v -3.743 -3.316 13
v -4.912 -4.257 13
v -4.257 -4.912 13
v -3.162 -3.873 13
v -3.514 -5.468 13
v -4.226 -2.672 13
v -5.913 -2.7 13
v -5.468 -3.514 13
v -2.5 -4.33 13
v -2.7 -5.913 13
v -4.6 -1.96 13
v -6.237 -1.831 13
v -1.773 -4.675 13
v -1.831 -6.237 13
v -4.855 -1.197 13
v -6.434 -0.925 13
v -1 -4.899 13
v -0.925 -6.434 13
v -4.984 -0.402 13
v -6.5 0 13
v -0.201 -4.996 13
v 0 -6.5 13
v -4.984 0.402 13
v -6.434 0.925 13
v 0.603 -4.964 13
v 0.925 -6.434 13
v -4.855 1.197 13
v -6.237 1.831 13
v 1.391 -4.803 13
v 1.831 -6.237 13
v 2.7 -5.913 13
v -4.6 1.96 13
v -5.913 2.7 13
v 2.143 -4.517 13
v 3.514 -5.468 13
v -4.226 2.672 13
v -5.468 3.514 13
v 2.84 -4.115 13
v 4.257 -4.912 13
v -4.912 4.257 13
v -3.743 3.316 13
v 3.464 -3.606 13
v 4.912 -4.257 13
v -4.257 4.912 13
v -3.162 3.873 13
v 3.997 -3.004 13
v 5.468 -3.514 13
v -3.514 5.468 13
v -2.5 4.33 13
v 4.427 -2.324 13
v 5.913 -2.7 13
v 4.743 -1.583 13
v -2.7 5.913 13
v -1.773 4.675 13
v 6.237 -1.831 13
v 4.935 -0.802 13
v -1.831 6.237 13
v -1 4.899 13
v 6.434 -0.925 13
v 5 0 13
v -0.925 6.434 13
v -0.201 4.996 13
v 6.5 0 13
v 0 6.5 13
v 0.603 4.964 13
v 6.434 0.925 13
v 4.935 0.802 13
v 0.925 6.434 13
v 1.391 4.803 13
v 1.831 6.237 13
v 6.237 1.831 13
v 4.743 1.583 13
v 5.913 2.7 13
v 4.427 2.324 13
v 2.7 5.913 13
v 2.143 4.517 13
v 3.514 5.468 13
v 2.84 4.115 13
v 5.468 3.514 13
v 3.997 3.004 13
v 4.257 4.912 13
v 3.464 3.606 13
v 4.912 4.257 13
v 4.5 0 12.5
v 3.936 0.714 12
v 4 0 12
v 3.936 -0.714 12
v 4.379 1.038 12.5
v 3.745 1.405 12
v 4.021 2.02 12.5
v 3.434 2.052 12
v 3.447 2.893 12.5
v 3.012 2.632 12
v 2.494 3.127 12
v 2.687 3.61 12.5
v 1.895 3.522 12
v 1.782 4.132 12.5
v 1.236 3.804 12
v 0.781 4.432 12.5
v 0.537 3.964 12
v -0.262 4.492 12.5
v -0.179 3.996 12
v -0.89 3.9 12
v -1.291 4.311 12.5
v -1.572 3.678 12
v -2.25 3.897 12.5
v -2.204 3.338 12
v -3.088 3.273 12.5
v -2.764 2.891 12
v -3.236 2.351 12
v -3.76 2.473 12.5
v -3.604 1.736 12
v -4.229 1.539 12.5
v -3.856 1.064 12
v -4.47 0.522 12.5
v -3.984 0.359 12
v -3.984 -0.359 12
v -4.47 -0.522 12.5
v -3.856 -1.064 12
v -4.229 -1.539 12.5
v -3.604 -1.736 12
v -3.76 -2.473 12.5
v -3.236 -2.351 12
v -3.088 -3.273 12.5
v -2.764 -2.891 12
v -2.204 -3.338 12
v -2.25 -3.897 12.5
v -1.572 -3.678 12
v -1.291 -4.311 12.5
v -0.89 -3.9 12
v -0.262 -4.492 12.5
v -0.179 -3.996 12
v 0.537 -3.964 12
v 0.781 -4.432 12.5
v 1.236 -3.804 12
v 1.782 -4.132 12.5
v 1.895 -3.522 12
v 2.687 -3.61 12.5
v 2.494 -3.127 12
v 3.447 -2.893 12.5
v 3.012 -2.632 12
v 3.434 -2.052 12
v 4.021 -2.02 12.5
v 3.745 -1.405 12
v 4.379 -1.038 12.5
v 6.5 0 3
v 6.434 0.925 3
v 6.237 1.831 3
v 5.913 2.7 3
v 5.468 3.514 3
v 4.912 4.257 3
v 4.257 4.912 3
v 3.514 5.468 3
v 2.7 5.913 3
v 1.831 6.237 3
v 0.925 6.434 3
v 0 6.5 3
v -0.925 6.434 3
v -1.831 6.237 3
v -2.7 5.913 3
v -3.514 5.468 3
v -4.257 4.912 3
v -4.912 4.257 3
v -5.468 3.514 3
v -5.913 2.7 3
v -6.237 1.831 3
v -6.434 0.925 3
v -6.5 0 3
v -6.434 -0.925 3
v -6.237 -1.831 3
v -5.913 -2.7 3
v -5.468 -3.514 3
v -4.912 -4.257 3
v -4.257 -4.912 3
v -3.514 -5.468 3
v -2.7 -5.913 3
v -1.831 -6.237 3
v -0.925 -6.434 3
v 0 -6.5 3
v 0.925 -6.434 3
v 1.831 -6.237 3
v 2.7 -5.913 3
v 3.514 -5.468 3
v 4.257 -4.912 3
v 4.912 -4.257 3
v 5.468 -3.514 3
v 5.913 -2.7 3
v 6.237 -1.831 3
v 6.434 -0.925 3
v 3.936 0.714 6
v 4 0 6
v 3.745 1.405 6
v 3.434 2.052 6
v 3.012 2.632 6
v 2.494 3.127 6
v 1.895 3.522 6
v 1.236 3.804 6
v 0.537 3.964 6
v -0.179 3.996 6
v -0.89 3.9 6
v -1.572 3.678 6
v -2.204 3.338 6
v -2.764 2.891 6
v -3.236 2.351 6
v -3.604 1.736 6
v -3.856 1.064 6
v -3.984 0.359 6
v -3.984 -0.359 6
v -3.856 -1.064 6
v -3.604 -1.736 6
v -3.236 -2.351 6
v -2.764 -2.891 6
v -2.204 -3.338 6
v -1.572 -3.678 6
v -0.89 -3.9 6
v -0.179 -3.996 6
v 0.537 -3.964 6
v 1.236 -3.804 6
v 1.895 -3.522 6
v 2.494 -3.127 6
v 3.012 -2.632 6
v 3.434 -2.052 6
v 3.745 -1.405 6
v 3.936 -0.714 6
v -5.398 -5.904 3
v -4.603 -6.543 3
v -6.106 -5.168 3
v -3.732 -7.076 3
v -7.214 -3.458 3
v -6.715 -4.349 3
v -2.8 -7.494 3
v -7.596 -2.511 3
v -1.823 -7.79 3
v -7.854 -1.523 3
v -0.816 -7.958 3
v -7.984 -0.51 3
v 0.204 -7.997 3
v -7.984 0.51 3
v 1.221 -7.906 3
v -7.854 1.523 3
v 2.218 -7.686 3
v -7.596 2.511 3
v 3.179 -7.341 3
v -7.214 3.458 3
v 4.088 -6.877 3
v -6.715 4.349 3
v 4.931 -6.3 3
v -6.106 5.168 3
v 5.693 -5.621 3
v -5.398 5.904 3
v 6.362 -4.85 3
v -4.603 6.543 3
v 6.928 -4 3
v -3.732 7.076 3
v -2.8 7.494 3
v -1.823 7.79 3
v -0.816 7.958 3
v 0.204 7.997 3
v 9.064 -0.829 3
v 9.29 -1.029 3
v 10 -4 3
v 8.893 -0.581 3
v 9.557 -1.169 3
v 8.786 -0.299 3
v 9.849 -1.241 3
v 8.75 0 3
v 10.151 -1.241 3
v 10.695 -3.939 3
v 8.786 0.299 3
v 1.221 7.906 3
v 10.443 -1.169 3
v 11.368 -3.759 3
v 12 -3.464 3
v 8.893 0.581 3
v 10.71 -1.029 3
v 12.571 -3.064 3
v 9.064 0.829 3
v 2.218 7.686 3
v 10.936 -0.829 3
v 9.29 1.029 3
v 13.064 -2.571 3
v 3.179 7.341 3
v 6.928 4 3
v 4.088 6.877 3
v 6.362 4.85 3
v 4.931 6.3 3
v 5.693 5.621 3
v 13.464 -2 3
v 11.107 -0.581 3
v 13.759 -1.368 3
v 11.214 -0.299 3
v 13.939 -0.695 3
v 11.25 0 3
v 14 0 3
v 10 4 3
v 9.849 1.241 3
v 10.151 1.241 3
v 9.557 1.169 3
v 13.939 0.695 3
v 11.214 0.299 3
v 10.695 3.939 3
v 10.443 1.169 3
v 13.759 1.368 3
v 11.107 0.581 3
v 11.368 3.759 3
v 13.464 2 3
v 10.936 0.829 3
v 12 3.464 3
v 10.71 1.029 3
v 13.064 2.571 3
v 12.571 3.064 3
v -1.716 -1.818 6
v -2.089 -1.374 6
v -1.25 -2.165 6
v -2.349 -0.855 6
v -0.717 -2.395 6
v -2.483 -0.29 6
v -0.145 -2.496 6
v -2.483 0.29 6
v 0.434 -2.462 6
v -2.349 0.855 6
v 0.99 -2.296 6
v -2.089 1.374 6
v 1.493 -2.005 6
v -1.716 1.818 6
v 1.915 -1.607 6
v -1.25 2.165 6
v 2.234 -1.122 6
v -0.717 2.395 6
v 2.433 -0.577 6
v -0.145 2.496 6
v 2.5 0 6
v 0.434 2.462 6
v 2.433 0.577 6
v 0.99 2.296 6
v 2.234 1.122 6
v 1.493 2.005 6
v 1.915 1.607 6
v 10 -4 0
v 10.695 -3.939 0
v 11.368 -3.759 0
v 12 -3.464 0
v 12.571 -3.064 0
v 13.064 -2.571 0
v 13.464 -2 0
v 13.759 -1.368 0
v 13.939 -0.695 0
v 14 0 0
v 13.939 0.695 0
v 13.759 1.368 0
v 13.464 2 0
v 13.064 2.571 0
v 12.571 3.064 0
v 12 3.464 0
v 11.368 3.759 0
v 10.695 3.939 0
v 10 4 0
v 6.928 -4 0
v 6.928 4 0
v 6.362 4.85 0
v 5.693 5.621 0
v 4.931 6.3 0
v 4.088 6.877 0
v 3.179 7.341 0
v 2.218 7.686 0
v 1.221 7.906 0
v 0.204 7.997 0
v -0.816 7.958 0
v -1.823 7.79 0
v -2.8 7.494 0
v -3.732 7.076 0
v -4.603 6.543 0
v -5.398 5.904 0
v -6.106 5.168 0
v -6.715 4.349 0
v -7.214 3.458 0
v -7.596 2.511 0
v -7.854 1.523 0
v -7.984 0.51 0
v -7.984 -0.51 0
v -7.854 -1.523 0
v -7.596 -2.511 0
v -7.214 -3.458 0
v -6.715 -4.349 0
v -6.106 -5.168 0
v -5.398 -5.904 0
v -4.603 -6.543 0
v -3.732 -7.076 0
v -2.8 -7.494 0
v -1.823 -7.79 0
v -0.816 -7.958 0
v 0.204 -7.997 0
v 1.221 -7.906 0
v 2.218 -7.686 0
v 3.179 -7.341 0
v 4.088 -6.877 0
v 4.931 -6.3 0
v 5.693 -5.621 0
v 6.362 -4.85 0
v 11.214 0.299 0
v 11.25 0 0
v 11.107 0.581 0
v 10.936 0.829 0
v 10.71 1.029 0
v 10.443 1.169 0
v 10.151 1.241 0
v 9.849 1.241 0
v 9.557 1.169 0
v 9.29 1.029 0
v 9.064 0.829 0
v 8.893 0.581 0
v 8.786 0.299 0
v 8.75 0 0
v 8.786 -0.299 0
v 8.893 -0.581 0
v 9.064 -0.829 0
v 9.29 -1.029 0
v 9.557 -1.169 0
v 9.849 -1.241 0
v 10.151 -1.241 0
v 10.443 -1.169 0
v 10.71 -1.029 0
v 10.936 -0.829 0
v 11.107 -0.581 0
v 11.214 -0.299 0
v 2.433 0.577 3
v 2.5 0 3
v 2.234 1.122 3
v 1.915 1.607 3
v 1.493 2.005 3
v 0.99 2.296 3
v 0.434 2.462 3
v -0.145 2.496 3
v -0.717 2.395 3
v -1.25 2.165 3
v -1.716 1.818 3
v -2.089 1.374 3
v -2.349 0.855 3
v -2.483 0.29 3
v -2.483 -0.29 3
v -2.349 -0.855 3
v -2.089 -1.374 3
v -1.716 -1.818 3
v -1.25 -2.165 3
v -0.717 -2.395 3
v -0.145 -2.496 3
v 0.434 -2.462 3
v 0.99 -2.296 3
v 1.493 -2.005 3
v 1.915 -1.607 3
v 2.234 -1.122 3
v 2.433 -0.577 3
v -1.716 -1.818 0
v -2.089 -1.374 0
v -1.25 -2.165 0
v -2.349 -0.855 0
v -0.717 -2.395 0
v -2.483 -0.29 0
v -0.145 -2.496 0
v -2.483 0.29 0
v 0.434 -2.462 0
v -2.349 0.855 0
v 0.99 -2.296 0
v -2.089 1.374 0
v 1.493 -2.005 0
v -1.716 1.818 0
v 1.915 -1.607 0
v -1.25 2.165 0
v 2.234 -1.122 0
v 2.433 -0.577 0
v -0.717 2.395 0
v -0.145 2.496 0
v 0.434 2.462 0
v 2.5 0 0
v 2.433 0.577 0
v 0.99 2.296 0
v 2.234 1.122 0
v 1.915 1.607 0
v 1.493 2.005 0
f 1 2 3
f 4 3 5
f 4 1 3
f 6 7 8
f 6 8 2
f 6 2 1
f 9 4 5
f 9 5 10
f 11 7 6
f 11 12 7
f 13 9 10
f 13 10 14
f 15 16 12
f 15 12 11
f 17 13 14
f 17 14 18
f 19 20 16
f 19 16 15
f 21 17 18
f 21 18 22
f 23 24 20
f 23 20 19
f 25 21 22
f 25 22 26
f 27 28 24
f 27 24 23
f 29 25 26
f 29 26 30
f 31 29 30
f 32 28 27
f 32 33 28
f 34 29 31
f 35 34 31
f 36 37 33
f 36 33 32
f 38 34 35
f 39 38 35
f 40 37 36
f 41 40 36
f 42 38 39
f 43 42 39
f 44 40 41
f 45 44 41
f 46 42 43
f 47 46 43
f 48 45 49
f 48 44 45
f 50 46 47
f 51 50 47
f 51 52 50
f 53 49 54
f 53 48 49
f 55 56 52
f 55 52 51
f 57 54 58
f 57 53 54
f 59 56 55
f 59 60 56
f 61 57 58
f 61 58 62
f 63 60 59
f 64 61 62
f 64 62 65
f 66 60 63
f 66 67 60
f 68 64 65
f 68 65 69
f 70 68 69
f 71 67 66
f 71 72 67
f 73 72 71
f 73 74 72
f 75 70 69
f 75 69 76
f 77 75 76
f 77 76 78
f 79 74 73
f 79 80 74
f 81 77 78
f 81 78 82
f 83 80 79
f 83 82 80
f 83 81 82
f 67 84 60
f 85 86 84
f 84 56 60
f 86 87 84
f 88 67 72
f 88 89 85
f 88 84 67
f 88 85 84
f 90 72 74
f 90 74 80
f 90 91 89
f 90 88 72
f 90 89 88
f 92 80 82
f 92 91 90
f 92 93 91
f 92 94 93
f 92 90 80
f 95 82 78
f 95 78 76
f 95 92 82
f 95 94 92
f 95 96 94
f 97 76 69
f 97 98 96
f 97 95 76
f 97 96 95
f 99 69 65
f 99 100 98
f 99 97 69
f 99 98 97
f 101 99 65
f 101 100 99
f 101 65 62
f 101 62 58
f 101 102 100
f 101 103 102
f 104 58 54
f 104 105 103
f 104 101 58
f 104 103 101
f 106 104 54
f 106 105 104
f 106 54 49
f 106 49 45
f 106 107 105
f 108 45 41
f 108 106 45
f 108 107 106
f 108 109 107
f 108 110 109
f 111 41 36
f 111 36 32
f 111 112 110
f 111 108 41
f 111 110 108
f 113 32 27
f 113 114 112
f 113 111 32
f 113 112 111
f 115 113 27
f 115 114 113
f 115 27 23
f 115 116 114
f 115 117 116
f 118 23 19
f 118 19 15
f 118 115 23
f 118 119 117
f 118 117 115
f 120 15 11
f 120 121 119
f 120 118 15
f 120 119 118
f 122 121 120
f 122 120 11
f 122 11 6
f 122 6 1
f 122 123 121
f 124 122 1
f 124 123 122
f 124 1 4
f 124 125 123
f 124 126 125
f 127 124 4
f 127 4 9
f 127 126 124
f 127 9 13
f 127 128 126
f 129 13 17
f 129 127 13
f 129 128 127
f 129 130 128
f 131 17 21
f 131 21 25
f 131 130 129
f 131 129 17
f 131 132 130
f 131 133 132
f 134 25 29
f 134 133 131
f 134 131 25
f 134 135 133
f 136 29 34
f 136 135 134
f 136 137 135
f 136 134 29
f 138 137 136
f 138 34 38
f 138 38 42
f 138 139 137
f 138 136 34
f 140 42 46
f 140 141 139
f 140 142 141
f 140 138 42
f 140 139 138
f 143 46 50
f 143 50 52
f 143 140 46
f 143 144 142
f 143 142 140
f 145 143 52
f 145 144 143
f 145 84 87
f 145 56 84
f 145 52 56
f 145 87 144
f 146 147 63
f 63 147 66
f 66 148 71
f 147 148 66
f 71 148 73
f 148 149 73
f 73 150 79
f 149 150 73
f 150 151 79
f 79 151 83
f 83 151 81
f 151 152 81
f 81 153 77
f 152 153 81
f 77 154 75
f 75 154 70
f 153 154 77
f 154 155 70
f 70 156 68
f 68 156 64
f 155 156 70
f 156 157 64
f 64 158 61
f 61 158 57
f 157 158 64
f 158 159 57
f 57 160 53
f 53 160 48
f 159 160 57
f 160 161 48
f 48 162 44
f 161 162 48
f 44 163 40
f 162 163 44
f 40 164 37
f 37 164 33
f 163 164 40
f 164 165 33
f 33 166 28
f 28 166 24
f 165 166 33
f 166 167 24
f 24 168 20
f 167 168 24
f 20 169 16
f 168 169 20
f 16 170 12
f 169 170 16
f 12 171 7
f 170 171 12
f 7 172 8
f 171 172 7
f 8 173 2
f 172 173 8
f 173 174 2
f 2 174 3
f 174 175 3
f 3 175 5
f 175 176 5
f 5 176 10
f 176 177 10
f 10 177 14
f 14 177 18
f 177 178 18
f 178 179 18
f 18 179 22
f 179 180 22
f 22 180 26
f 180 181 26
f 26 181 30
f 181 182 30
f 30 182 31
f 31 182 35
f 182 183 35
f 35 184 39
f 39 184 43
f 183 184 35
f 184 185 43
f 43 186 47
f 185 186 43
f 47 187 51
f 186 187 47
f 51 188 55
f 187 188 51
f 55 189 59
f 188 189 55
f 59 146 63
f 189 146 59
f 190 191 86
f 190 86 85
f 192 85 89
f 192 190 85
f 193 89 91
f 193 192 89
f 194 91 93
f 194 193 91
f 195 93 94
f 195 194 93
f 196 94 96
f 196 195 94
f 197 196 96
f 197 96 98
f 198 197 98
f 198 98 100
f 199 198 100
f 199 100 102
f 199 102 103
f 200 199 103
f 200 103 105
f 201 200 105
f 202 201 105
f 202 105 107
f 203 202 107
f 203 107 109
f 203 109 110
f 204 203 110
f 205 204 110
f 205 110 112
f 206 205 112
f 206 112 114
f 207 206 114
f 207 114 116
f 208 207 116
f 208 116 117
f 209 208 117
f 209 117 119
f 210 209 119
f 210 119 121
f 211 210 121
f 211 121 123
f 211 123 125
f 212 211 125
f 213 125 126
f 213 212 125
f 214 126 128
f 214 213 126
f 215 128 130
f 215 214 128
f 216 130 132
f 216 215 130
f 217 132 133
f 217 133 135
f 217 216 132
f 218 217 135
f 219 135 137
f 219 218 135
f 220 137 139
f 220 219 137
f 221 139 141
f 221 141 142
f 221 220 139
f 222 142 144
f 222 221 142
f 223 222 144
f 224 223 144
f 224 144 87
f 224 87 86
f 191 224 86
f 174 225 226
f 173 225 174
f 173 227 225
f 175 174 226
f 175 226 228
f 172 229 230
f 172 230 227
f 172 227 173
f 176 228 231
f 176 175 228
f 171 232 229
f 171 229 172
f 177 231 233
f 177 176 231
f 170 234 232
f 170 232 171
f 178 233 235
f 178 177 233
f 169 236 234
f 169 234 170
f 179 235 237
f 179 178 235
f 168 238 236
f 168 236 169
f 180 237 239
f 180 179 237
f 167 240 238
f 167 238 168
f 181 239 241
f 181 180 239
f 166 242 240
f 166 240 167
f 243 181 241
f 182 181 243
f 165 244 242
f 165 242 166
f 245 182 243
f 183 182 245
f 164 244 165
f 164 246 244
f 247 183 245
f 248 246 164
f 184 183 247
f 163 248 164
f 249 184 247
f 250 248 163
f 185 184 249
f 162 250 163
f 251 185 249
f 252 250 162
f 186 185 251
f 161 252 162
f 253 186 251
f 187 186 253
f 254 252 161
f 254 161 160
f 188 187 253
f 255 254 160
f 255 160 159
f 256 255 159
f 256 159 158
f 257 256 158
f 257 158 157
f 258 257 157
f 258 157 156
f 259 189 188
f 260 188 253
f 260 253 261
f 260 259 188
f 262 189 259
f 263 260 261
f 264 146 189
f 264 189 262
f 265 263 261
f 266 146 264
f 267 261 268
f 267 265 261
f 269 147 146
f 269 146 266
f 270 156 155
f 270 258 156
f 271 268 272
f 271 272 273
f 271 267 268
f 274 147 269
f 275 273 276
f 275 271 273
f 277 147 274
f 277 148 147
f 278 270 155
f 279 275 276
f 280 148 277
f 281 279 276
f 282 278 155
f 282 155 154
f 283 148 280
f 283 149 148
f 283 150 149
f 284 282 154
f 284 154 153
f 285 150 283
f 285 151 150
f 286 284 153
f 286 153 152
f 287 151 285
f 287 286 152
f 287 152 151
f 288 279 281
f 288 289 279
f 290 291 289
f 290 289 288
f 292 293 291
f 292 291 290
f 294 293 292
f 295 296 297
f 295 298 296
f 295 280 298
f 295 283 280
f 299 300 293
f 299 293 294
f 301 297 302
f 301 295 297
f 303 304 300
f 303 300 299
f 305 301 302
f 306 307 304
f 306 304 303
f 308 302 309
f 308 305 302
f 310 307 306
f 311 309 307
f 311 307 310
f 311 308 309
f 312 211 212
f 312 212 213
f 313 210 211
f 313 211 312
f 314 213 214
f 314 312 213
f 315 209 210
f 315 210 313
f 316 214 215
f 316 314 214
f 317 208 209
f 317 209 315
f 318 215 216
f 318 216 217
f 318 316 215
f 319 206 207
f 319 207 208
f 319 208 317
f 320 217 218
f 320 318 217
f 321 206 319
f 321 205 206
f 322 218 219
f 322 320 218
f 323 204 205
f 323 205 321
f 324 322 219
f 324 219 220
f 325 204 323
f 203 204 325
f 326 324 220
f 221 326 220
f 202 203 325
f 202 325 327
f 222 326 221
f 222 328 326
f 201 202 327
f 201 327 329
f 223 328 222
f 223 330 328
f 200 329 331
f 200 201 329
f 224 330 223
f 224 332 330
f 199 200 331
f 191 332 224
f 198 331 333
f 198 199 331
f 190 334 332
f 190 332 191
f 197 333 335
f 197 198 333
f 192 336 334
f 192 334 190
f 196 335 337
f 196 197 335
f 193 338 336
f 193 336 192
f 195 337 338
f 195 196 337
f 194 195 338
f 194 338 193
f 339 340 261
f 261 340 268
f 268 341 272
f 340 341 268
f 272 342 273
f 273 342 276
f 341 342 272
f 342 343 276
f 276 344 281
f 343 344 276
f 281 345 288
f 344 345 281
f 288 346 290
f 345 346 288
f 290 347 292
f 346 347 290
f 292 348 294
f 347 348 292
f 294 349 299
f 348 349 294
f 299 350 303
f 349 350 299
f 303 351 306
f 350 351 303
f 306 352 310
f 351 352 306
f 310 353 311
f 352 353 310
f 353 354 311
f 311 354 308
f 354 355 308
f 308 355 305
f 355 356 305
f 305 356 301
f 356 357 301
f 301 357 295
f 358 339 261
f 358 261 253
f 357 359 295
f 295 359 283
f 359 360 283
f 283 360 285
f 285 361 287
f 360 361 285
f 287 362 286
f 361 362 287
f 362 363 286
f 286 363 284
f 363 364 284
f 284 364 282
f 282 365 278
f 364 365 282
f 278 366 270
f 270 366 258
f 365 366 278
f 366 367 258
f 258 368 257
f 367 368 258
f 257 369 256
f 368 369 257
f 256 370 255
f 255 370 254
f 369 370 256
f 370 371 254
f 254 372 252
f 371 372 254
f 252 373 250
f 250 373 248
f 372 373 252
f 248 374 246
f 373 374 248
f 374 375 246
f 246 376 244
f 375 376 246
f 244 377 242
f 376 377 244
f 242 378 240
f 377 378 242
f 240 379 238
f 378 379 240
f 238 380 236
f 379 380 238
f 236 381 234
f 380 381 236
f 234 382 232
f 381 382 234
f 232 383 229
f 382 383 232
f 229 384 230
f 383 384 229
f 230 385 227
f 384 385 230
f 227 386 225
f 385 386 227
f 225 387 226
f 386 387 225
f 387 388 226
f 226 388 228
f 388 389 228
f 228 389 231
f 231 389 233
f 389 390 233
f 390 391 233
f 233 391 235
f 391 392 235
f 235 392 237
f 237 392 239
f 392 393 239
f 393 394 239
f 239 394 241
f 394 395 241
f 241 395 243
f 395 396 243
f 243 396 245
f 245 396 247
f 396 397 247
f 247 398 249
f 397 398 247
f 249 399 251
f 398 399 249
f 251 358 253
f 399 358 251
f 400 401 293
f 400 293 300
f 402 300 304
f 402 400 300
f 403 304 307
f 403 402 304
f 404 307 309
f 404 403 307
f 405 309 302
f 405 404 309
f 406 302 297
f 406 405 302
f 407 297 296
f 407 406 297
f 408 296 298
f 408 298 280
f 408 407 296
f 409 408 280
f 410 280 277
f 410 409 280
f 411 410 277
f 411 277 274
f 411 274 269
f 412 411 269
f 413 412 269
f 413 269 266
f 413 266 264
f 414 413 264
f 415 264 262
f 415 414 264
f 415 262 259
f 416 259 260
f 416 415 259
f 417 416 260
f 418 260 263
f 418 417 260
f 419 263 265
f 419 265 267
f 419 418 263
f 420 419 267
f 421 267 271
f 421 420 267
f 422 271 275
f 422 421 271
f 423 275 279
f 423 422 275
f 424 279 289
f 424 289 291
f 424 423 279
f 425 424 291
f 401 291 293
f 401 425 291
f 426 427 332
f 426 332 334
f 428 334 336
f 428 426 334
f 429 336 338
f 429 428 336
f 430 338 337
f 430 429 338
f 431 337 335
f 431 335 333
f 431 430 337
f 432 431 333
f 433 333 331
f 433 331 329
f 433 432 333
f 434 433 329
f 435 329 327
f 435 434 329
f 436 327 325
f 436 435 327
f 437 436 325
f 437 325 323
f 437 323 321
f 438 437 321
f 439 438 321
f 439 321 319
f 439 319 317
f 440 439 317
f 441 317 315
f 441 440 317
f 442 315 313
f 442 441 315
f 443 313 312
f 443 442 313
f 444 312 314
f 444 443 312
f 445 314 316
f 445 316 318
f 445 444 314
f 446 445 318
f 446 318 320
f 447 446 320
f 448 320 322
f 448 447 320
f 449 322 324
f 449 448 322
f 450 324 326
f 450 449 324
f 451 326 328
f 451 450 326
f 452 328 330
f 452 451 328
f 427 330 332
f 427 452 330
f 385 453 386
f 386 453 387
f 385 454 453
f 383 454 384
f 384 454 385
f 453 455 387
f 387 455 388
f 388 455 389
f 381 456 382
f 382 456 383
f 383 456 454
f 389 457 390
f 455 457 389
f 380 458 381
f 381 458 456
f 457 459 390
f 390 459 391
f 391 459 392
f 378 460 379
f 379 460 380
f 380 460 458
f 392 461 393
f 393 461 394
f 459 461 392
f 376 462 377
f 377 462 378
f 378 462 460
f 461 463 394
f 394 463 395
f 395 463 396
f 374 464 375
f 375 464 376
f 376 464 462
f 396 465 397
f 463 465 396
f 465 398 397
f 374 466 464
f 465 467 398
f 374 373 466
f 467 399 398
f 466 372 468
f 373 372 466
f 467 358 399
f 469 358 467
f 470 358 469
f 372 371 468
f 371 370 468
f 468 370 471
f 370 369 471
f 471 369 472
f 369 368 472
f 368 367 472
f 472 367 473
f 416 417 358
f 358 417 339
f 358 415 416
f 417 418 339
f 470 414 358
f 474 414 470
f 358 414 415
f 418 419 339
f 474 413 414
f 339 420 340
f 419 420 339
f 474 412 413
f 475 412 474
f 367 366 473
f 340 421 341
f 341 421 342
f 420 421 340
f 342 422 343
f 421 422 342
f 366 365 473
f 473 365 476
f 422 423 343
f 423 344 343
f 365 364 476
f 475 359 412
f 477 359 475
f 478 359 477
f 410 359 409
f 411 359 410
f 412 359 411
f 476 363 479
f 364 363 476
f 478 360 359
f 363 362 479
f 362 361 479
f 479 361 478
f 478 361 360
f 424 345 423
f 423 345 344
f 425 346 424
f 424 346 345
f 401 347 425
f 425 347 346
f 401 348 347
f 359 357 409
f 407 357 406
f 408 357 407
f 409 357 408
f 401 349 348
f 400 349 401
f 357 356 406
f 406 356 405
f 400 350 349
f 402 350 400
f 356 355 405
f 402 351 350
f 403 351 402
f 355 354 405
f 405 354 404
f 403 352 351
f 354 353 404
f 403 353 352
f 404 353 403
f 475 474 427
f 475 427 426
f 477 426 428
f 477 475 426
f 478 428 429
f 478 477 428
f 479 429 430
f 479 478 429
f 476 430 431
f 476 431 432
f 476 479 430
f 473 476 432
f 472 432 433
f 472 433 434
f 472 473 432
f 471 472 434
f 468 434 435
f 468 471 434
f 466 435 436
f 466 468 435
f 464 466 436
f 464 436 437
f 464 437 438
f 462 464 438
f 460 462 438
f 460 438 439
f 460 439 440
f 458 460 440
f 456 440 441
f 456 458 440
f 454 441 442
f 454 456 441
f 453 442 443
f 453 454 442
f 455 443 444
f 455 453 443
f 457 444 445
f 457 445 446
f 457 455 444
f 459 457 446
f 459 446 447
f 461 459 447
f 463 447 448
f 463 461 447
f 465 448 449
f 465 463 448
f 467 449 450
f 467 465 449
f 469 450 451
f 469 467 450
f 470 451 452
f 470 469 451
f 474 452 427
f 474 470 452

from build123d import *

# Parameters (mm, degrees)
SKETCH_R      = 2.5
SKETCH_R_2    = 1.25
PAD_DEPTH     = 3
SKETCH001_R   = 6.5
SKETCH001_R_2 = 4
PAD001_DEPTH  = 10
CHAMFER_SIZE  = 1
SKETCH002_R   = 4
SKETCH002_R_2 = 2.5
PAD002_DEPTH  = 3


with BuildPart() as part:
    # Sketch → Pad (new body)
    with BuildSketch(Plane.XY):
        with BuildLine():
            ThreePointArc((6.928203, 4), (-8, 0), (6.928203, -4))
            Line((10, -4), (6.928203, -4))
            ThreePointArc((10, -4), (14, 0), (10, 4))
            Line((10, 4), (6.928203, 4))
        make_face()
        Circle(SKETCH_R, mode=Mode.SUBTRACT)
        with Locations((10, 0)):
            Circle(SKETCH_R_2, mode=Mode.SUBTRACT)
    extrude(amount=PAD_DEPTH)

    # Sketch001 (on Face8 of Pad) → Pad001 (join)
    with BuildSketch(Plane.XY.offset(3)):
        Circle(SKETCH001_R)
        Circle(SKETCH001_R_2, mode=Mode.SUBTRACT)
    extrude(amount=PAD001_DEPTH)

    # Chamfer
    chamfer_edges = [part.edges().sort_by_distance(p)[0] for p in [
        (-4, 0, 13),
    ]]
    chamfer(chamfer_edges, length=CHAMFER_SIZE)

    # Sketch002 (on Face6 of Chamfer) → Pad002 (join)
    with BuildSketch(Plane.XY.offset(3)):
        Circle(SKETCH002_R)
        Circle(SKETCH002_R_2, mode=Mode.SUBTRACT)
    extrude(amount=PAD002_DEPTH)


solid = part.part
